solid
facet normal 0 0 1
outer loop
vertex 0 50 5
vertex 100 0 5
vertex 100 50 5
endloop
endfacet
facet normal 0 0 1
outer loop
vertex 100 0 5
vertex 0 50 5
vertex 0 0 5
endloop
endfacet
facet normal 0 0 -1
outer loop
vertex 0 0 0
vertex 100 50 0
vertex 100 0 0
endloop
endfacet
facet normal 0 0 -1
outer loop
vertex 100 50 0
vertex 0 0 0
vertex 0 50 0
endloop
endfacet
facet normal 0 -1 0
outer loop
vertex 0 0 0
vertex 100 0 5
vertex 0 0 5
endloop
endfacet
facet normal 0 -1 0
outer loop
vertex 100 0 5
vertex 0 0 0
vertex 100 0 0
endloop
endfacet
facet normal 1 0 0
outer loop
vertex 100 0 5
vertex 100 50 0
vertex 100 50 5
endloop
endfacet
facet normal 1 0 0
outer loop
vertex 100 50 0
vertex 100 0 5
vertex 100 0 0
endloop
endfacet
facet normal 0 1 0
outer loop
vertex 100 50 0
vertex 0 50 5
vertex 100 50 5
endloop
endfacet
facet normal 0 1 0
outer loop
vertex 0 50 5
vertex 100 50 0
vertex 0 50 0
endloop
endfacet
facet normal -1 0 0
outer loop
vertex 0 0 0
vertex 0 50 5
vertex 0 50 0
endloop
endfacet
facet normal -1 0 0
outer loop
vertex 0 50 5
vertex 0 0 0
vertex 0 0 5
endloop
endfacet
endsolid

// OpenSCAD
module plate(width, depth, height) {
  cube([width, depth, height]);
}

plate(100, 50, 5);
